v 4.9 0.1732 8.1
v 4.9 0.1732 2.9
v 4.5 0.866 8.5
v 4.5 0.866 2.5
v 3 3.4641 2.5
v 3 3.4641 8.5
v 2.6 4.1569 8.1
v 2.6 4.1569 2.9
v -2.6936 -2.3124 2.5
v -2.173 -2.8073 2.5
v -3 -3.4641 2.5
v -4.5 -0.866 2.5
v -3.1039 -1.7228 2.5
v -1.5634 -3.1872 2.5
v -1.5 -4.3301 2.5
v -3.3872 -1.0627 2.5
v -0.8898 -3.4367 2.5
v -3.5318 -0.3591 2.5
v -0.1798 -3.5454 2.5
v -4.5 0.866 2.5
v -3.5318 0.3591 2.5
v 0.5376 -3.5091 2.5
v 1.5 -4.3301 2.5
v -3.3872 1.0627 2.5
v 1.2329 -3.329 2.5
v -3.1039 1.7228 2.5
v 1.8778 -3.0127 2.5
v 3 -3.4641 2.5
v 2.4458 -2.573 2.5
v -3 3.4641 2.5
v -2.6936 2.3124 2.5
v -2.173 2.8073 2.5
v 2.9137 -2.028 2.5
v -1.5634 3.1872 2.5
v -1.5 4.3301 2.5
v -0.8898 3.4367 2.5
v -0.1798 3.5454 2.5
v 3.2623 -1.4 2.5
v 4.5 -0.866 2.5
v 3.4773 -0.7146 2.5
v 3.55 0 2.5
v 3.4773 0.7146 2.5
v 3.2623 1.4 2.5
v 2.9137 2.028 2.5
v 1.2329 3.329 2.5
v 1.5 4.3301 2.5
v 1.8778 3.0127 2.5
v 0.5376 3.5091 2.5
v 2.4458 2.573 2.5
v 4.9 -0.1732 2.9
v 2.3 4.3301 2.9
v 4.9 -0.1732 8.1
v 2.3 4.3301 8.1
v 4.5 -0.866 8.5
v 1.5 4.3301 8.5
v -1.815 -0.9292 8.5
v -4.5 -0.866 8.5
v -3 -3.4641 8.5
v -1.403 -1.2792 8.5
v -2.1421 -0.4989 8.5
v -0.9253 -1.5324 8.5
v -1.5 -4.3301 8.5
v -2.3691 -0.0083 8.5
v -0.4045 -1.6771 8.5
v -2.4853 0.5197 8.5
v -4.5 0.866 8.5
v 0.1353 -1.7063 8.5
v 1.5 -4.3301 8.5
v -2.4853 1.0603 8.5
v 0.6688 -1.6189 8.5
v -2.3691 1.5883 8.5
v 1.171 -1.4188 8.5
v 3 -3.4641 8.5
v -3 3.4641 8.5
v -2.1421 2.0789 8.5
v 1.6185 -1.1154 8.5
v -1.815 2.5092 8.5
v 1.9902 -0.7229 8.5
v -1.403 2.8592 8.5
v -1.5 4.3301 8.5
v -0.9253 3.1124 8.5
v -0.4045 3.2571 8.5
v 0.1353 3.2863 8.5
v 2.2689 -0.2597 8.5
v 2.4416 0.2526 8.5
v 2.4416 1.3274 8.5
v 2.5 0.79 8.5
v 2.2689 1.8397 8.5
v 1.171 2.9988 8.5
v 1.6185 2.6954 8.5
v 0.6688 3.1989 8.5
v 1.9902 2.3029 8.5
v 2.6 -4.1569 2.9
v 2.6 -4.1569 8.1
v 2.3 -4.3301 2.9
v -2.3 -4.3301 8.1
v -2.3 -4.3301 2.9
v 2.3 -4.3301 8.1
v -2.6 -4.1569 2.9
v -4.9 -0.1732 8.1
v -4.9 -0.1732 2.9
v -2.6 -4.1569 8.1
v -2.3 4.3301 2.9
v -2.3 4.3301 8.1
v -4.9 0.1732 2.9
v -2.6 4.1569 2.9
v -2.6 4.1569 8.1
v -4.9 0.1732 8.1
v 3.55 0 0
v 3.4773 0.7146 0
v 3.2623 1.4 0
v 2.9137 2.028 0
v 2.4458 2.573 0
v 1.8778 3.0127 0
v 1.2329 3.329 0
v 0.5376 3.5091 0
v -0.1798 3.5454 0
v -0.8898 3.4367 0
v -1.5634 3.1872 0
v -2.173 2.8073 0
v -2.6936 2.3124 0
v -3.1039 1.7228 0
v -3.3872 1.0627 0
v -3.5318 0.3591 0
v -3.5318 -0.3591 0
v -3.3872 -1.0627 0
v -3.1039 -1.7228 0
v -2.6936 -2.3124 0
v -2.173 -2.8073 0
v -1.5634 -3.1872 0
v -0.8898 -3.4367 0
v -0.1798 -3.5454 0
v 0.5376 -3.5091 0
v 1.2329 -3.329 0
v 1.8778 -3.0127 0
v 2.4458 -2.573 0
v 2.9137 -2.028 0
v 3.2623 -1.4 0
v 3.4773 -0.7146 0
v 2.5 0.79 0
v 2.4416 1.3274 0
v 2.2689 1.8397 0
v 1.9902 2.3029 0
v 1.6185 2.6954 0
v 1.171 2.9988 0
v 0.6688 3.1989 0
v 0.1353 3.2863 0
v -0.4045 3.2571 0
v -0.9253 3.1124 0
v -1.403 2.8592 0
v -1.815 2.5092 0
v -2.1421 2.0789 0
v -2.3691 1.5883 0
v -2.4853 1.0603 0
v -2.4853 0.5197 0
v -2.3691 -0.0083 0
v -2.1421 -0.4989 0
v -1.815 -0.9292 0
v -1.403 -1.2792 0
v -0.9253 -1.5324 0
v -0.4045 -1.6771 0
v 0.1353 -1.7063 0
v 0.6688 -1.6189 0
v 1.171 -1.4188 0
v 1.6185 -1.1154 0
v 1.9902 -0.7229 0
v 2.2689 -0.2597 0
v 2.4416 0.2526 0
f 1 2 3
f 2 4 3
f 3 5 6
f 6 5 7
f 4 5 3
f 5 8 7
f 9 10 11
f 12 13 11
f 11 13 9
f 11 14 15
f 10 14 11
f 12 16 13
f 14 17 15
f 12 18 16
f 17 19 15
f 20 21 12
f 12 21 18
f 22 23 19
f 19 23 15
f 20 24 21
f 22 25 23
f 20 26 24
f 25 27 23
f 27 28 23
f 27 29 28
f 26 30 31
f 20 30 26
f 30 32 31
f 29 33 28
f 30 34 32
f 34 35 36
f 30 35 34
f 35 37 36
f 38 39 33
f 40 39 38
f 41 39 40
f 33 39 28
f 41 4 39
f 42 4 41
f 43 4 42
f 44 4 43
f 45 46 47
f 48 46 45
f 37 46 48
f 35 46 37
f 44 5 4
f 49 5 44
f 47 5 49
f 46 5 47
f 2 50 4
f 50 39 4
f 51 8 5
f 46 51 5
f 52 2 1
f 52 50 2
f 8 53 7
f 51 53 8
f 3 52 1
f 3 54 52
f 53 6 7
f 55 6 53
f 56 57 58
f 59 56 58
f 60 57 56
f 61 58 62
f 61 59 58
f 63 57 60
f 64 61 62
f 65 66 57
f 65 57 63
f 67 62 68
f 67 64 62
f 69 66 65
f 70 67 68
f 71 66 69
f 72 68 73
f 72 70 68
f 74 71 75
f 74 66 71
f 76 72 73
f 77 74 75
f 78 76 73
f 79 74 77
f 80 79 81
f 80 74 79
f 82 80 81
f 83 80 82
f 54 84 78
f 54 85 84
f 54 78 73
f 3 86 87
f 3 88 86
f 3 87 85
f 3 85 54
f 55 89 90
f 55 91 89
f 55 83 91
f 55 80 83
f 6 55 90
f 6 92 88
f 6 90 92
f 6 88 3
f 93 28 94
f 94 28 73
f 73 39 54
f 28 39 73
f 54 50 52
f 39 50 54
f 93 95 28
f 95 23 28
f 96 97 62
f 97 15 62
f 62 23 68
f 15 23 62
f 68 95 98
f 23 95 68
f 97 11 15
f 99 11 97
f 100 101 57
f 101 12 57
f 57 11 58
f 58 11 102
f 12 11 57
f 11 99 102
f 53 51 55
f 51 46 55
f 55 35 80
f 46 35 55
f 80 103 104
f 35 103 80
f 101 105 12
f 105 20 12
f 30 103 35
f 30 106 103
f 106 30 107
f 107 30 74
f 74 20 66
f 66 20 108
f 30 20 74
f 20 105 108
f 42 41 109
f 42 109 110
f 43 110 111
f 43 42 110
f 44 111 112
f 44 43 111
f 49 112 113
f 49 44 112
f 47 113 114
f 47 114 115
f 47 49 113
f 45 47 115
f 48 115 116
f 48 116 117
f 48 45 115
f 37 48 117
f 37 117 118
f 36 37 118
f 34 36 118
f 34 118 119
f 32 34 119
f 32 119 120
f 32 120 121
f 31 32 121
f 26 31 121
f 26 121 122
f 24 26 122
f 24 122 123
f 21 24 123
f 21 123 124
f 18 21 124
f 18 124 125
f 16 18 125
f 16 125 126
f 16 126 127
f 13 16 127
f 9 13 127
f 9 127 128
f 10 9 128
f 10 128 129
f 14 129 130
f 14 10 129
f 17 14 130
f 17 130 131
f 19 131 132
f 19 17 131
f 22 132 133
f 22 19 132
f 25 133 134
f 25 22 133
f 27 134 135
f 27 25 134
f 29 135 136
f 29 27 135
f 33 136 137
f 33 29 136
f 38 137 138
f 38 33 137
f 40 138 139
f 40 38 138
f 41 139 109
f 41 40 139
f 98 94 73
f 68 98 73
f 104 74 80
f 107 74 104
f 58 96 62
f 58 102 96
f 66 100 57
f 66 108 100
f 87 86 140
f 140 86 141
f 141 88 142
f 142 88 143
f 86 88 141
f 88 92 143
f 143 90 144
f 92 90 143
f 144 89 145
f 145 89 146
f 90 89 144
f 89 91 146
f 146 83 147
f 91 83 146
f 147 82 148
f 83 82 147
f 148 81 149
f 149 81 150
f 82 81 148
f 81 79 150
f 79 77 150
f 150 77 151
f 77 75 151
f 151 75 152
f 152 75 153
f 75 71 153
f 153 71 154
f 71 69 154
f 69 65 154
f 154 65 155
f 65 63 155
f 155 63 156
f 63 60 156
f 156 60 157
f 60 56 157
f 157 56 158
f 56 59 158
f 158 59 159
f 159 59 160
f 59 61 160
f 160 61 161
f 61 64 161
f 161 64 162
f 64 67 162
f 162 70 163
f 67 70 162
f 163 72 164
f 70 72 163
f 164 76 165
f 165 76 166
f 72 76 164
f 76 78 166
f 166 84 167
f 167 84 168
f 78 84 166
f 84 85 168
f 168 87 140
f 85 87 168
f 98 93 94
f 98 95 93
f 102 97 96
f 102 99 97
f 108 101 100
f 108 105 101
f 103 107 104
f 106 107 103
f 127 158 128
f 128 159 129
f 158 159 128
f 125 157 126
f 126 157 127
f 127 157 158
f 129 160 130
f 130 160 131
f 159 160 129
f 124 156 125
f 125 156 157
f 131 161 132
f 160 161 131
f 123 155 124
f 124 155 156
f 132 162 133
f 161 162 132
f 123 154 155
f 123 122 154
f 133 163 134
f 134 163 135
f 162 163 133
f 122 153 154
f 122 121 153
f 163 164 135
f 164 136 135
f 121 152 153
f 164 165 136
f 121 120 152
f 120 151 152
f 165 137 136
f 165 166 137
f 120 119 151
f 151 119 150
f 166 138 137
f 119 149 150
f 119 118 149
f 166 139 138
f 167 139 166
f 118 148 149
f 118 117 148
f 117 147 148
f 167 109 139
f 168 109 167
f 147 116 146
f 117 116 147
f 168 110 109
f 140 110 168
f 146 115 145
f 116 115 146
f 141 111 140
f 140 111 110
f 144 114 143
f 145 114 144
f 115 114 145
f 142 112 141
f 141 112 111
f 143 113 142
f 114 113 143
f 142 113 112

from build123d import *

# Parameters (mm, degrees)
CYLINDER_R      = 2.5
CYLINDER_DEPTH  = 8.5
TUBE_R          = 5
TUBE_R_2        = 3.55
TUBE_DEPTH      = 2.5
EXTRUDE_DEPTH   = 8.5
CHAMFER_SIZE    = 0.2
CHAMFER001_SIZE = 0.4


with BuildPart() as cylindre:
    # Cylinder → Cylinder (new body)
    with BuildSketch(Plane(origin=(0, 0.79, 0), x_dir=(1, 0, 0), z_dir=(0, 0, 1))):
        Circle(CYLINDER_R)
    extrude(amount=CYLINDER_DEPTH)


with BuildPart() as tube:
    # Tube → Tube (new body)
    with BuildSketch(Plane.XY):
        Circle(TUBE_R)
        Circle(TUBE_R_2, mode=Mode.SUBTRACT)
    extrude(amount=TUBE_DEPTH)


with BuildPart() as chamfer001:
    # RegularPolygon → Extrude (new body)
    with BuildSketch(Plane(origin=(0, 0, 0), x_dir=(0, 1, 0), z_dir=(0, 0, 1))):
        Polygon((0, -5), (4.330127, -2.5), (4.330127, 2.5), (0, 5), (-4.330127, 2.5), (-4.330127, -2.5), align=None)
    extrude(amount=EXTRUDE_DEPTH)

    # Cut: cut Tube
    add(tube.part, mode=Mode.SUBTRACT)

    # Cut001: cut Cylindre
    add(cylindre.part, mode=Mode.SUBTRACT)

    # Chamfer
    chamfer_edges = [chamfer001.edges().sort_by_distance(p)[0] for p in [
        (2.5, 4.330127, 5.5),
        (5, 0, 5.5),
        (-2.5, 4.330127, 5.5),
        (2.5, -4.330127, 5.5),
        (-2.5, -4.330127, 5.5),
        (-5, 0, 5.5),
    ]]
    chamfer(chamfer_edges, length=CHAMFER_SIZE)

    # Chamfer001
    chamfer001_edges = [chamfer001.edges().sort_by_distance(p)[0] for p in [
        (4.9, 0, 2.5),
        (2.45, 4.243524, 2.5),
        (-2.45, 4.243524, 2.5),
        (-4.9, 0, 2.5),
        (-2.45, -4.243524, 2.5),
        (2.45, -4.243524, 2.5),
        (4.9, 0, 8.5),
        (2.45, 4.243524, 8.5),
        (-2.45, 4.243524, 8.5),
        (-4.9, 0, 8.5),
        (-2.45, -4.243524, 8.5),
        (2.45, -4.243524, 8.5),
    ]]
    chamfer(chamfer001_edges, length=CHAMFER001_SIZE)


solid = chamfer001.part
